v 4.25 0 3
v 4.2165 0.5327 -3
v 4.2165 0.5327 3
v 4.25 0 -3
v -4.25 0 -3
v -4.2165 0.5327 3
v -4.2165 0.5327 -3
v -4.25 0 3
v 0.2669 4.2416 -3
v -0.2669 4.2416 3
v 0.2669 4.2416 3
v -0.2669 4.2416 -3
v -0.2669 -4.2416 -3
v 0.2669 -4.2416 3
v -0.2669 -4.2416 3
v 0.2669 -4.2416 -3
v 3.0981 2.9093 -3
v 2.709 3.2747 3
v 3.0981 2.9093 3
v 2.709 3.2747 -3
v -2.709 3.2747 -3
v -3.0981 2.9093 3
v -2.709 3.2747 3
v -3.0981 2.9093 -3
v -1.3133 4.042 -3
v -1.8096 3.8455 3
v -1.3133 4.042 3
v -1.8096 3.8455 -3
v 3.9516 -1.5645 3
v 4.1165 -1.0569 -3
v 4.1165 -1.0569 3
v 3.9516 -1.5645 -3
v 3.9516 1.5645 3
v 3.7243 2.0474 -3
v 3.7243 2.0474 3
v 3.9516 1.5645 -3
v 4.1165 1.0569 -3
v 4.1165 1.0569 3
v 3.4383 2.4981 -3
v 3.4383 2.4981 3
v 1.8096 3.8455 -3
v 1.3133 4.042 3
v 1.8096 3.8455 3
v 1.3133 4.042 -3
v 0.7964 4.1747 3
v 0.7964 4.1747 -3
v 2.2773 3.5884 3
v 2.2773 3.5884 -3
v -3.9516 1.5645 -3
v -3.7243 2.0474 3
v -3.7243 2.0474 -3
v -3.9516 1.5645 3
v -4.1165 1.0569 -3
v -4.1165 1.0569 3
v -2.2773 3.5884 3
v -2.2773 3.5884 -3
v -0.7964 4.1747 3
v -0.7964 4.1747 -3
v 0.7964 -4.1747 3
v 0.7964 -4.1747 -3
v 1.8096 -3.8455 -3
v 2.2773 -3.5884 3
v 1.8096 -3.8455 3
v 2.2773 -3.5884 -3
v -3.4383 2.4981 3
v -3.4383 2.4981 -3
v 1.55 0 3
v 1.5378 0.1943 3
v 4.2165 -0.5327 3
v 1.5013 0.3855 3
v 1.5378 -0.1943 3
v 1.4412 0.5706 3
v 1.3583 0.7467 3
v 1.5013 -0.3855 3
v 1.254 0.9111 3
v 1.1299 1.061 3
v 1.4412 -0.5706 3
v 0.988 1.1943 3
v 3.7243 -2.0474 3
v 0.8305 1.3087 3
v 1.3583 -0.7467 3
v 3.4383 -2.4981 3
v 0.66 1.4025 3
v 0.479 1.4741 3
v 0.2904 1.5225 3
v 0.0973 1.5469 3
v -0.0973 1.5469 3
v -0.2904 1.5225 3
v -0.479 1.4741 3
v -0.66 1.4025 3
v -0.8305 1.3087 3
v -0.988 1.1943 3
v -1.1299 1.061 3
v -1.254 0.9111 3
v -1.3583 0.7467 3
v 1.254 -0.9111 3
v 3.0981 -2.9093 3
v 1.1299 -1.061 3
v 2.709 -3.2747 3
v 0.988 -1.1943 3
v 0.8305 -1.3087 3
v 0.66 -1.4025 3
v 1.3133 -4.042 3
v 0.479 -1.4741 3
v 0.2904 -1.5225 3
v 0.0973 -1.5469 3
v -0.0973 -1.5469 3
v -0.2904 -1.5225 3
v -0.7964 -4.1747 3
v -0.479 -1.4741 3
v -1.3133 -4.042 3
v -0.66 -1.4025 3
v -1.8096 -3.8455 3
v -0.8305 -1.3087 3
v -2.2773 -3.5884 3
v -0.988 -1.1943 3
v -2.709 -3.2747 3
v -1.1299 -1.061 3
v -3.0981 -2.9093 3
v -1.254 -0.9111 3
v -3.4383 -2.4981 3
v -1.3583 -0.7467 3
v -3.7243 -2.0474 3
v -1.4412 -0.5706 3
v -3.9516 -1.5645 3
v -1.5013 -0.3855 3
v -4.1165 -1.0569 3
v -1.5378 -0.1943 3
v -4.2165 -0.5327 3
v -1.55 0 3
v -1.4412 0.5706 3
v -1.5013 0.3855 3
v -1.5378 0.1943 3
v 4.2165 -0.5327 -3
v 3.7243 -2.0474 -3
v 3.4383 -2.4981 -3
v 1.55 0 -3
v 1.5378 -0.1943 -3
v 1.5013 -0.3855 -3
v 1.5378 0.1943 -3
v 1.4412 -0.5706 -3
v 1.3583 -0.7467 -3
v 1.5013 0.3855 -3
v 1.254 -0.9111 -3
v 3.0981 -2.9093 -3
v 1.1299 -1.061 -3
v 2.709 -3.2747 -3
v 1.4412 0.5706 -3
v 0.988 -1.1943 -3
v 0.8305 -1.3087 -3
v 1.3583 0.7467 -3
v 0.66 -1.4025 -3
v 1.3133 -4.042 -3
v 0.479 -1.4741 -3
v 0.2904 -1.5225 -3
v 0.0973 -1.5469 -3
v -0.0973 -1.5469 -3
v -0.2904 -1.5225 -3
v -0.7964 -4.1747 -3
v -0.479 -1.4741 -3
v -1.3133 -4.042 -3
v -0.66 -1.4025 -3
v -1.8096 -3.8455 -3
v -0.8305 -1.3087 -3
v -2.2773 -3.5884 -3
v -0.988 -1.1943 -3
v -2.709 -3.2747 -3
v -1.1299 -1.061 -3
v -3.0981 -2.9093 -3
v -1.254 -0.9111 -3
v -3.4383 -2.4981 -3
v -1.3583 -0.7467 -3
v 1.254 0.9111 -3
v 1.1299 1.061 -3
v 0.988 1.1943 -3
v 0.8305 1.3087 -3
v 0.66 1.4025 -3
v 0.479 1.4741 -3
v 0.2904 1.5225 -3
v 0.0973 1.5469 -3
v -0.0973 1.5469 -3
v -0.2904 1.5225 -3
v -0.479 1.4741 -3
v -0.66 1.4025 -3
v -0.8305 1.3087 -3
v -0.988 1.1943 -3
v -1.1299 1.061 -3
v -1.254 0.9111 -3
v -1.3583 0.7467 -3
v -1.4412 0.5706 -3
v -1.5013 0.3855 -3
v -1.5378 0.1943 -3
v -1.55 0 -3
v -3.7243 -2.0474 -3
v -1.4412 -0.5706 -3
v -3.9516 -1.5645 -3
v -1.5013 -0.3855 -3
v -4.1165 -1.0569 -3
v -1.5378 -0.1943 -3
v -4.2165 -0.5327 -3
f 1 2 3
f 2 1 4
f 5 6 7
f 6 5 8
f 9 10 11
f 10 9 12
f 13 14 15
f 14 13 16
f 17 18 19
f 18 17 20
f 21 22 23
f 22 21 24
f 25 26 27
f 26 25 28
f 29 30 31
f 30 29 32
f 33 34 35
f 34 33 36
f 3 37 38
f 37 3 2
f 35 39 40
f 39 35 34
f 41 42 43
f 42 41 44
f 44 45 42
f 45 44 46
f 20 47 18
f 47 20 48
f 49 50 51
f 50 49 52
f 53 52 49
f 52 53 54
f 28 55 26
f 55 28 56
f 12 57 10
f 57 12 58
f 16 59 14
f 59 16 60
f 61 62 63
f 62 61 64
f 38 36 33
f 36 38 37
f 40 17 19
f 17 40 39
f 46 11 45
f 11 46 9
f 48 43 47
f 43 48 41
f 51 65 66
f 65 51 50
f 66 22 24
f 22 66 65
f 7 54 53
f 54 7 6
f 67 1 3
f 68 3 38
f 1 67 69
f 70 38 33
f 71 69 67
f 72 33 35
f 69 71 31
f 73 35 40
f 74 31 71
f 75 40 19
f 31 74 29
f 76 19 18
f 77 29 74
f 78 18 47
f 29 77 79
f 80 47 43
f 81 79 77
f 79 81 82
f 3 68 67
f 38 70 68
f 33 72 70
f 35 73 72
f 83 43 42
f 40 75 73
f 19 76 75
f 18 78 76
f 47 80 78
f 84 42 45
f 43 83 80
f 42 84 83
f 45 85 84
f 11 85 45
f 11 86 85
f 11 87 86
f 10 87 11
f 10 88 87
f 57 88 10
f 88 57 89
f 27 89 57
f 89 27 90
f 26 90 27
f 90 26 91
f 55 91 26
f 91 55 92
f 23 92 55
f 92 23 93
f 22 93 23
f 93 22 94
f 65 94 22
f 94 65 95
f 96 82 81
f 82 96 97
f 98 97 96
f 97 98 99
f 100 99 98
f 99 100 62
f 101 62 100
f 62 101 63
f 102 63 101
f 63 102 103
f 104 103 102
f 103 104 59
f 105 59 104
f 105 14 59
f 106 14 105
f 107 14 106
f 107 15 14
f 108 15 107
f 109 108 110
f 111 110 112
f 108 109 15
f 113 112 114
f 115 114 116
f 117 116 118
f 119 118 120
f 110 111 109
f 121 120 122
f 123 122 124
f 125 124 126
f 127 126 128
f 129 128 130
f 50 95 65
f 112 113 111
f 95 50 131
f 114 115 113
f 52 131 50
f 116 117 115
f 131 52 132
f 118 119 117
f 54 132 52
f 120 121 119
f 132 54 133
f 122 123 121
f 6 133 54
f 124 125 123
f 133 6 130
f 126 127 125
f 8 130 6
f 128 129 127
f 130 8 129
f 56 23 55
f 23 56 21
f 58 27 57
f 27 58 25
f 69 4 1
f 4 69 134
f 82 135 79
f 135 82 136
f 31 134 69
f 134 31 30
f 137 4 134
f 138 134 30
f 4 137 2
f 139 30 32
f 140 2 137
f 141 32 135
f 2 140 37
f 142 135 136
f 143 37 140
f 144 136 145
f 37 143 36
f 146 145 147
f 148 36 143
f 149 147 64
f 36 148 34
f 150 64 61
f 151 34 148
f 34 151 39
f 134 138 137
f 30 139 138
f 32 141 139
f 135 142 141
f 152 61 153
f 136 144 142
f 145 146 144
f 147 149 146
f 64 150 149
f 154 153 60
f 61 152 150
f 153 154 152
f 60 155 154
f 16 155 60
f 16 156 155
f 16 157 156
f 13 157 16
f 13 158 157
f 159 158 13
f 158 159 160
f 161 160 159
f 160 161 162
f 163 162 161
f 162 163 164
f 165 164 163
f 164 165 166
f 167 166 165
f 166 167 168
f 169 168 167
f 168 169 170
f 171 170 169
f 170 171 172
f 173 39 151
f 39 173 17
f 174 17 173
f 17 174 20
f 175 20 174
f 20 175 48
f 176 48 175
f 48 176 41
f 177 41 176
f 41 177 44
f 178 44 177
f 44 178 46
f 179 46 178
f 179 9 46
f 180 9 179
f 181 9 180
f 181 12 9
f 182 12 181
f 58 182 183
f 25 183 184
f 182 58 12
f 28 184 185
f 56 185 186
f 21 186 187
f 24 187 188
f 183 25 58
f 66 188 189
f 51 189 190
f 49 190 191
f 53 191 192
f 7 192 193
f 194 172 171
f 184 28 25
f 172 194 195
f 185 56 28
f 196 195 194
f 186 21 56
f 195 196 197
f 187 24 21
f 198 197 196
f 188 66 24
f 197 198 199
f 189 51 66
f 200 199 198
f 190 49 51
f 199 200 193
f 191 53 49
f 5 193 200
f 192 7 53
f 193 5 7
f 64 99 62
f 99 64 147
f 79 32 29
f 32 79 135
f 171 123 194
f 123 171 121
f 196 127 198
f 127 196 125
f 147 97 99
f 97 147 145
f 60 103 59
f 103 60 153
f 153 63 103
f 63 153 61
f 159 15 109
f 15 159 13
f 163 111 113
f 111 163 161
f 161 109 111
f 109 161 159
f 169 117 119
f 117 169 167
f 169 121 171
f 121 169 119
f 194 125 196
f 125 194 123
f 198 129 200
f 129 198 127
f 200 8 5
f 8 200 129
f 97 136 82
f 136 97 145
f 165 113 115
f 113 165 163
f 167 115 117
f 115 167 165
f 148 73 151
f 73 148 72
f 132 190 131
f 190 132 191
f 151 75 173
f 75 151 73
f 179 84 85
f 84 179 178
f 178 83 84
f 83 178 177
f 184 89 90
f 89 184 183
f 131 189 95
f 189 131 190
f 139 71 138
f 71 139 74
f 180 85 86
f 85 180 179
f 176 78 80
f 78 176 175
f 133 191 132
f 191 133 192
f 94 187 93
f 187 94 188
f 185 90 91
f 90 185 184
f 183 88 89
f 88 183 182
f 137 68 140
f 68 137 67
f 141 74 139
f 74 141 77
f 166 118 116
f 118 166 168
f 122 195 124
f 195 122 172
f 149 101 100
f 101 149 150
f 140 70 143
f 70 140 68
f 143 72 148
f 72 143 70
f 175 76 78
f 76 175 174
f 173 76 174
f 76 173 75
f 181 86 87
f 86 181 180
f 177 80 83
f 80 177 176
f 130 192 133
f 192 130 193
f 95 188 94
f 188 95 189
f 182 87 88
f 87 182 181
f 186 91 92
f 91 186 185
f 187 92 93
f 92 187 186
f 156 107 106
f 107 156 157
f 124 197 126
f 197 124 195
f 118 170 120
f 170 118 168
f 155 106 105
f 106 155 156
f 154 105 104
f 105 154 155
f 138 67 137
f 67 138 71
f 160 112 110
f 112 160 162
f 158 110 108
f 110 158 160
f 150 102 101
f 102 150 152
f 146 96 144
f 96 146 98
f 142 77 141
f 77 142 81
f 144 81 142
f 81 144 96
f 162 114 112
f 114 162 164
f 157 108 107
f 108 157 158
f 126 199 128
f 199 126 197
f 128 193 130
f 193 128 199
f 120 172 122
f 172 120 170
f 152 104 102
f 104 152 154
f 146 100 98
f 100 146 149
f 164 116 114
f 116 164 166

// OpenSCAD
$fn = 50;


difference() {
	union() {
		translate(v = [0, 0, -3.0000000000]) {
			cylinder(h = 6, r = 4.2500000000);
		}
	}
	union() {
		translate(v = [0, 0, -100.0000000000]) {
			cylinder(h = 200, r = 1.5500000000);
		}
	}
}
